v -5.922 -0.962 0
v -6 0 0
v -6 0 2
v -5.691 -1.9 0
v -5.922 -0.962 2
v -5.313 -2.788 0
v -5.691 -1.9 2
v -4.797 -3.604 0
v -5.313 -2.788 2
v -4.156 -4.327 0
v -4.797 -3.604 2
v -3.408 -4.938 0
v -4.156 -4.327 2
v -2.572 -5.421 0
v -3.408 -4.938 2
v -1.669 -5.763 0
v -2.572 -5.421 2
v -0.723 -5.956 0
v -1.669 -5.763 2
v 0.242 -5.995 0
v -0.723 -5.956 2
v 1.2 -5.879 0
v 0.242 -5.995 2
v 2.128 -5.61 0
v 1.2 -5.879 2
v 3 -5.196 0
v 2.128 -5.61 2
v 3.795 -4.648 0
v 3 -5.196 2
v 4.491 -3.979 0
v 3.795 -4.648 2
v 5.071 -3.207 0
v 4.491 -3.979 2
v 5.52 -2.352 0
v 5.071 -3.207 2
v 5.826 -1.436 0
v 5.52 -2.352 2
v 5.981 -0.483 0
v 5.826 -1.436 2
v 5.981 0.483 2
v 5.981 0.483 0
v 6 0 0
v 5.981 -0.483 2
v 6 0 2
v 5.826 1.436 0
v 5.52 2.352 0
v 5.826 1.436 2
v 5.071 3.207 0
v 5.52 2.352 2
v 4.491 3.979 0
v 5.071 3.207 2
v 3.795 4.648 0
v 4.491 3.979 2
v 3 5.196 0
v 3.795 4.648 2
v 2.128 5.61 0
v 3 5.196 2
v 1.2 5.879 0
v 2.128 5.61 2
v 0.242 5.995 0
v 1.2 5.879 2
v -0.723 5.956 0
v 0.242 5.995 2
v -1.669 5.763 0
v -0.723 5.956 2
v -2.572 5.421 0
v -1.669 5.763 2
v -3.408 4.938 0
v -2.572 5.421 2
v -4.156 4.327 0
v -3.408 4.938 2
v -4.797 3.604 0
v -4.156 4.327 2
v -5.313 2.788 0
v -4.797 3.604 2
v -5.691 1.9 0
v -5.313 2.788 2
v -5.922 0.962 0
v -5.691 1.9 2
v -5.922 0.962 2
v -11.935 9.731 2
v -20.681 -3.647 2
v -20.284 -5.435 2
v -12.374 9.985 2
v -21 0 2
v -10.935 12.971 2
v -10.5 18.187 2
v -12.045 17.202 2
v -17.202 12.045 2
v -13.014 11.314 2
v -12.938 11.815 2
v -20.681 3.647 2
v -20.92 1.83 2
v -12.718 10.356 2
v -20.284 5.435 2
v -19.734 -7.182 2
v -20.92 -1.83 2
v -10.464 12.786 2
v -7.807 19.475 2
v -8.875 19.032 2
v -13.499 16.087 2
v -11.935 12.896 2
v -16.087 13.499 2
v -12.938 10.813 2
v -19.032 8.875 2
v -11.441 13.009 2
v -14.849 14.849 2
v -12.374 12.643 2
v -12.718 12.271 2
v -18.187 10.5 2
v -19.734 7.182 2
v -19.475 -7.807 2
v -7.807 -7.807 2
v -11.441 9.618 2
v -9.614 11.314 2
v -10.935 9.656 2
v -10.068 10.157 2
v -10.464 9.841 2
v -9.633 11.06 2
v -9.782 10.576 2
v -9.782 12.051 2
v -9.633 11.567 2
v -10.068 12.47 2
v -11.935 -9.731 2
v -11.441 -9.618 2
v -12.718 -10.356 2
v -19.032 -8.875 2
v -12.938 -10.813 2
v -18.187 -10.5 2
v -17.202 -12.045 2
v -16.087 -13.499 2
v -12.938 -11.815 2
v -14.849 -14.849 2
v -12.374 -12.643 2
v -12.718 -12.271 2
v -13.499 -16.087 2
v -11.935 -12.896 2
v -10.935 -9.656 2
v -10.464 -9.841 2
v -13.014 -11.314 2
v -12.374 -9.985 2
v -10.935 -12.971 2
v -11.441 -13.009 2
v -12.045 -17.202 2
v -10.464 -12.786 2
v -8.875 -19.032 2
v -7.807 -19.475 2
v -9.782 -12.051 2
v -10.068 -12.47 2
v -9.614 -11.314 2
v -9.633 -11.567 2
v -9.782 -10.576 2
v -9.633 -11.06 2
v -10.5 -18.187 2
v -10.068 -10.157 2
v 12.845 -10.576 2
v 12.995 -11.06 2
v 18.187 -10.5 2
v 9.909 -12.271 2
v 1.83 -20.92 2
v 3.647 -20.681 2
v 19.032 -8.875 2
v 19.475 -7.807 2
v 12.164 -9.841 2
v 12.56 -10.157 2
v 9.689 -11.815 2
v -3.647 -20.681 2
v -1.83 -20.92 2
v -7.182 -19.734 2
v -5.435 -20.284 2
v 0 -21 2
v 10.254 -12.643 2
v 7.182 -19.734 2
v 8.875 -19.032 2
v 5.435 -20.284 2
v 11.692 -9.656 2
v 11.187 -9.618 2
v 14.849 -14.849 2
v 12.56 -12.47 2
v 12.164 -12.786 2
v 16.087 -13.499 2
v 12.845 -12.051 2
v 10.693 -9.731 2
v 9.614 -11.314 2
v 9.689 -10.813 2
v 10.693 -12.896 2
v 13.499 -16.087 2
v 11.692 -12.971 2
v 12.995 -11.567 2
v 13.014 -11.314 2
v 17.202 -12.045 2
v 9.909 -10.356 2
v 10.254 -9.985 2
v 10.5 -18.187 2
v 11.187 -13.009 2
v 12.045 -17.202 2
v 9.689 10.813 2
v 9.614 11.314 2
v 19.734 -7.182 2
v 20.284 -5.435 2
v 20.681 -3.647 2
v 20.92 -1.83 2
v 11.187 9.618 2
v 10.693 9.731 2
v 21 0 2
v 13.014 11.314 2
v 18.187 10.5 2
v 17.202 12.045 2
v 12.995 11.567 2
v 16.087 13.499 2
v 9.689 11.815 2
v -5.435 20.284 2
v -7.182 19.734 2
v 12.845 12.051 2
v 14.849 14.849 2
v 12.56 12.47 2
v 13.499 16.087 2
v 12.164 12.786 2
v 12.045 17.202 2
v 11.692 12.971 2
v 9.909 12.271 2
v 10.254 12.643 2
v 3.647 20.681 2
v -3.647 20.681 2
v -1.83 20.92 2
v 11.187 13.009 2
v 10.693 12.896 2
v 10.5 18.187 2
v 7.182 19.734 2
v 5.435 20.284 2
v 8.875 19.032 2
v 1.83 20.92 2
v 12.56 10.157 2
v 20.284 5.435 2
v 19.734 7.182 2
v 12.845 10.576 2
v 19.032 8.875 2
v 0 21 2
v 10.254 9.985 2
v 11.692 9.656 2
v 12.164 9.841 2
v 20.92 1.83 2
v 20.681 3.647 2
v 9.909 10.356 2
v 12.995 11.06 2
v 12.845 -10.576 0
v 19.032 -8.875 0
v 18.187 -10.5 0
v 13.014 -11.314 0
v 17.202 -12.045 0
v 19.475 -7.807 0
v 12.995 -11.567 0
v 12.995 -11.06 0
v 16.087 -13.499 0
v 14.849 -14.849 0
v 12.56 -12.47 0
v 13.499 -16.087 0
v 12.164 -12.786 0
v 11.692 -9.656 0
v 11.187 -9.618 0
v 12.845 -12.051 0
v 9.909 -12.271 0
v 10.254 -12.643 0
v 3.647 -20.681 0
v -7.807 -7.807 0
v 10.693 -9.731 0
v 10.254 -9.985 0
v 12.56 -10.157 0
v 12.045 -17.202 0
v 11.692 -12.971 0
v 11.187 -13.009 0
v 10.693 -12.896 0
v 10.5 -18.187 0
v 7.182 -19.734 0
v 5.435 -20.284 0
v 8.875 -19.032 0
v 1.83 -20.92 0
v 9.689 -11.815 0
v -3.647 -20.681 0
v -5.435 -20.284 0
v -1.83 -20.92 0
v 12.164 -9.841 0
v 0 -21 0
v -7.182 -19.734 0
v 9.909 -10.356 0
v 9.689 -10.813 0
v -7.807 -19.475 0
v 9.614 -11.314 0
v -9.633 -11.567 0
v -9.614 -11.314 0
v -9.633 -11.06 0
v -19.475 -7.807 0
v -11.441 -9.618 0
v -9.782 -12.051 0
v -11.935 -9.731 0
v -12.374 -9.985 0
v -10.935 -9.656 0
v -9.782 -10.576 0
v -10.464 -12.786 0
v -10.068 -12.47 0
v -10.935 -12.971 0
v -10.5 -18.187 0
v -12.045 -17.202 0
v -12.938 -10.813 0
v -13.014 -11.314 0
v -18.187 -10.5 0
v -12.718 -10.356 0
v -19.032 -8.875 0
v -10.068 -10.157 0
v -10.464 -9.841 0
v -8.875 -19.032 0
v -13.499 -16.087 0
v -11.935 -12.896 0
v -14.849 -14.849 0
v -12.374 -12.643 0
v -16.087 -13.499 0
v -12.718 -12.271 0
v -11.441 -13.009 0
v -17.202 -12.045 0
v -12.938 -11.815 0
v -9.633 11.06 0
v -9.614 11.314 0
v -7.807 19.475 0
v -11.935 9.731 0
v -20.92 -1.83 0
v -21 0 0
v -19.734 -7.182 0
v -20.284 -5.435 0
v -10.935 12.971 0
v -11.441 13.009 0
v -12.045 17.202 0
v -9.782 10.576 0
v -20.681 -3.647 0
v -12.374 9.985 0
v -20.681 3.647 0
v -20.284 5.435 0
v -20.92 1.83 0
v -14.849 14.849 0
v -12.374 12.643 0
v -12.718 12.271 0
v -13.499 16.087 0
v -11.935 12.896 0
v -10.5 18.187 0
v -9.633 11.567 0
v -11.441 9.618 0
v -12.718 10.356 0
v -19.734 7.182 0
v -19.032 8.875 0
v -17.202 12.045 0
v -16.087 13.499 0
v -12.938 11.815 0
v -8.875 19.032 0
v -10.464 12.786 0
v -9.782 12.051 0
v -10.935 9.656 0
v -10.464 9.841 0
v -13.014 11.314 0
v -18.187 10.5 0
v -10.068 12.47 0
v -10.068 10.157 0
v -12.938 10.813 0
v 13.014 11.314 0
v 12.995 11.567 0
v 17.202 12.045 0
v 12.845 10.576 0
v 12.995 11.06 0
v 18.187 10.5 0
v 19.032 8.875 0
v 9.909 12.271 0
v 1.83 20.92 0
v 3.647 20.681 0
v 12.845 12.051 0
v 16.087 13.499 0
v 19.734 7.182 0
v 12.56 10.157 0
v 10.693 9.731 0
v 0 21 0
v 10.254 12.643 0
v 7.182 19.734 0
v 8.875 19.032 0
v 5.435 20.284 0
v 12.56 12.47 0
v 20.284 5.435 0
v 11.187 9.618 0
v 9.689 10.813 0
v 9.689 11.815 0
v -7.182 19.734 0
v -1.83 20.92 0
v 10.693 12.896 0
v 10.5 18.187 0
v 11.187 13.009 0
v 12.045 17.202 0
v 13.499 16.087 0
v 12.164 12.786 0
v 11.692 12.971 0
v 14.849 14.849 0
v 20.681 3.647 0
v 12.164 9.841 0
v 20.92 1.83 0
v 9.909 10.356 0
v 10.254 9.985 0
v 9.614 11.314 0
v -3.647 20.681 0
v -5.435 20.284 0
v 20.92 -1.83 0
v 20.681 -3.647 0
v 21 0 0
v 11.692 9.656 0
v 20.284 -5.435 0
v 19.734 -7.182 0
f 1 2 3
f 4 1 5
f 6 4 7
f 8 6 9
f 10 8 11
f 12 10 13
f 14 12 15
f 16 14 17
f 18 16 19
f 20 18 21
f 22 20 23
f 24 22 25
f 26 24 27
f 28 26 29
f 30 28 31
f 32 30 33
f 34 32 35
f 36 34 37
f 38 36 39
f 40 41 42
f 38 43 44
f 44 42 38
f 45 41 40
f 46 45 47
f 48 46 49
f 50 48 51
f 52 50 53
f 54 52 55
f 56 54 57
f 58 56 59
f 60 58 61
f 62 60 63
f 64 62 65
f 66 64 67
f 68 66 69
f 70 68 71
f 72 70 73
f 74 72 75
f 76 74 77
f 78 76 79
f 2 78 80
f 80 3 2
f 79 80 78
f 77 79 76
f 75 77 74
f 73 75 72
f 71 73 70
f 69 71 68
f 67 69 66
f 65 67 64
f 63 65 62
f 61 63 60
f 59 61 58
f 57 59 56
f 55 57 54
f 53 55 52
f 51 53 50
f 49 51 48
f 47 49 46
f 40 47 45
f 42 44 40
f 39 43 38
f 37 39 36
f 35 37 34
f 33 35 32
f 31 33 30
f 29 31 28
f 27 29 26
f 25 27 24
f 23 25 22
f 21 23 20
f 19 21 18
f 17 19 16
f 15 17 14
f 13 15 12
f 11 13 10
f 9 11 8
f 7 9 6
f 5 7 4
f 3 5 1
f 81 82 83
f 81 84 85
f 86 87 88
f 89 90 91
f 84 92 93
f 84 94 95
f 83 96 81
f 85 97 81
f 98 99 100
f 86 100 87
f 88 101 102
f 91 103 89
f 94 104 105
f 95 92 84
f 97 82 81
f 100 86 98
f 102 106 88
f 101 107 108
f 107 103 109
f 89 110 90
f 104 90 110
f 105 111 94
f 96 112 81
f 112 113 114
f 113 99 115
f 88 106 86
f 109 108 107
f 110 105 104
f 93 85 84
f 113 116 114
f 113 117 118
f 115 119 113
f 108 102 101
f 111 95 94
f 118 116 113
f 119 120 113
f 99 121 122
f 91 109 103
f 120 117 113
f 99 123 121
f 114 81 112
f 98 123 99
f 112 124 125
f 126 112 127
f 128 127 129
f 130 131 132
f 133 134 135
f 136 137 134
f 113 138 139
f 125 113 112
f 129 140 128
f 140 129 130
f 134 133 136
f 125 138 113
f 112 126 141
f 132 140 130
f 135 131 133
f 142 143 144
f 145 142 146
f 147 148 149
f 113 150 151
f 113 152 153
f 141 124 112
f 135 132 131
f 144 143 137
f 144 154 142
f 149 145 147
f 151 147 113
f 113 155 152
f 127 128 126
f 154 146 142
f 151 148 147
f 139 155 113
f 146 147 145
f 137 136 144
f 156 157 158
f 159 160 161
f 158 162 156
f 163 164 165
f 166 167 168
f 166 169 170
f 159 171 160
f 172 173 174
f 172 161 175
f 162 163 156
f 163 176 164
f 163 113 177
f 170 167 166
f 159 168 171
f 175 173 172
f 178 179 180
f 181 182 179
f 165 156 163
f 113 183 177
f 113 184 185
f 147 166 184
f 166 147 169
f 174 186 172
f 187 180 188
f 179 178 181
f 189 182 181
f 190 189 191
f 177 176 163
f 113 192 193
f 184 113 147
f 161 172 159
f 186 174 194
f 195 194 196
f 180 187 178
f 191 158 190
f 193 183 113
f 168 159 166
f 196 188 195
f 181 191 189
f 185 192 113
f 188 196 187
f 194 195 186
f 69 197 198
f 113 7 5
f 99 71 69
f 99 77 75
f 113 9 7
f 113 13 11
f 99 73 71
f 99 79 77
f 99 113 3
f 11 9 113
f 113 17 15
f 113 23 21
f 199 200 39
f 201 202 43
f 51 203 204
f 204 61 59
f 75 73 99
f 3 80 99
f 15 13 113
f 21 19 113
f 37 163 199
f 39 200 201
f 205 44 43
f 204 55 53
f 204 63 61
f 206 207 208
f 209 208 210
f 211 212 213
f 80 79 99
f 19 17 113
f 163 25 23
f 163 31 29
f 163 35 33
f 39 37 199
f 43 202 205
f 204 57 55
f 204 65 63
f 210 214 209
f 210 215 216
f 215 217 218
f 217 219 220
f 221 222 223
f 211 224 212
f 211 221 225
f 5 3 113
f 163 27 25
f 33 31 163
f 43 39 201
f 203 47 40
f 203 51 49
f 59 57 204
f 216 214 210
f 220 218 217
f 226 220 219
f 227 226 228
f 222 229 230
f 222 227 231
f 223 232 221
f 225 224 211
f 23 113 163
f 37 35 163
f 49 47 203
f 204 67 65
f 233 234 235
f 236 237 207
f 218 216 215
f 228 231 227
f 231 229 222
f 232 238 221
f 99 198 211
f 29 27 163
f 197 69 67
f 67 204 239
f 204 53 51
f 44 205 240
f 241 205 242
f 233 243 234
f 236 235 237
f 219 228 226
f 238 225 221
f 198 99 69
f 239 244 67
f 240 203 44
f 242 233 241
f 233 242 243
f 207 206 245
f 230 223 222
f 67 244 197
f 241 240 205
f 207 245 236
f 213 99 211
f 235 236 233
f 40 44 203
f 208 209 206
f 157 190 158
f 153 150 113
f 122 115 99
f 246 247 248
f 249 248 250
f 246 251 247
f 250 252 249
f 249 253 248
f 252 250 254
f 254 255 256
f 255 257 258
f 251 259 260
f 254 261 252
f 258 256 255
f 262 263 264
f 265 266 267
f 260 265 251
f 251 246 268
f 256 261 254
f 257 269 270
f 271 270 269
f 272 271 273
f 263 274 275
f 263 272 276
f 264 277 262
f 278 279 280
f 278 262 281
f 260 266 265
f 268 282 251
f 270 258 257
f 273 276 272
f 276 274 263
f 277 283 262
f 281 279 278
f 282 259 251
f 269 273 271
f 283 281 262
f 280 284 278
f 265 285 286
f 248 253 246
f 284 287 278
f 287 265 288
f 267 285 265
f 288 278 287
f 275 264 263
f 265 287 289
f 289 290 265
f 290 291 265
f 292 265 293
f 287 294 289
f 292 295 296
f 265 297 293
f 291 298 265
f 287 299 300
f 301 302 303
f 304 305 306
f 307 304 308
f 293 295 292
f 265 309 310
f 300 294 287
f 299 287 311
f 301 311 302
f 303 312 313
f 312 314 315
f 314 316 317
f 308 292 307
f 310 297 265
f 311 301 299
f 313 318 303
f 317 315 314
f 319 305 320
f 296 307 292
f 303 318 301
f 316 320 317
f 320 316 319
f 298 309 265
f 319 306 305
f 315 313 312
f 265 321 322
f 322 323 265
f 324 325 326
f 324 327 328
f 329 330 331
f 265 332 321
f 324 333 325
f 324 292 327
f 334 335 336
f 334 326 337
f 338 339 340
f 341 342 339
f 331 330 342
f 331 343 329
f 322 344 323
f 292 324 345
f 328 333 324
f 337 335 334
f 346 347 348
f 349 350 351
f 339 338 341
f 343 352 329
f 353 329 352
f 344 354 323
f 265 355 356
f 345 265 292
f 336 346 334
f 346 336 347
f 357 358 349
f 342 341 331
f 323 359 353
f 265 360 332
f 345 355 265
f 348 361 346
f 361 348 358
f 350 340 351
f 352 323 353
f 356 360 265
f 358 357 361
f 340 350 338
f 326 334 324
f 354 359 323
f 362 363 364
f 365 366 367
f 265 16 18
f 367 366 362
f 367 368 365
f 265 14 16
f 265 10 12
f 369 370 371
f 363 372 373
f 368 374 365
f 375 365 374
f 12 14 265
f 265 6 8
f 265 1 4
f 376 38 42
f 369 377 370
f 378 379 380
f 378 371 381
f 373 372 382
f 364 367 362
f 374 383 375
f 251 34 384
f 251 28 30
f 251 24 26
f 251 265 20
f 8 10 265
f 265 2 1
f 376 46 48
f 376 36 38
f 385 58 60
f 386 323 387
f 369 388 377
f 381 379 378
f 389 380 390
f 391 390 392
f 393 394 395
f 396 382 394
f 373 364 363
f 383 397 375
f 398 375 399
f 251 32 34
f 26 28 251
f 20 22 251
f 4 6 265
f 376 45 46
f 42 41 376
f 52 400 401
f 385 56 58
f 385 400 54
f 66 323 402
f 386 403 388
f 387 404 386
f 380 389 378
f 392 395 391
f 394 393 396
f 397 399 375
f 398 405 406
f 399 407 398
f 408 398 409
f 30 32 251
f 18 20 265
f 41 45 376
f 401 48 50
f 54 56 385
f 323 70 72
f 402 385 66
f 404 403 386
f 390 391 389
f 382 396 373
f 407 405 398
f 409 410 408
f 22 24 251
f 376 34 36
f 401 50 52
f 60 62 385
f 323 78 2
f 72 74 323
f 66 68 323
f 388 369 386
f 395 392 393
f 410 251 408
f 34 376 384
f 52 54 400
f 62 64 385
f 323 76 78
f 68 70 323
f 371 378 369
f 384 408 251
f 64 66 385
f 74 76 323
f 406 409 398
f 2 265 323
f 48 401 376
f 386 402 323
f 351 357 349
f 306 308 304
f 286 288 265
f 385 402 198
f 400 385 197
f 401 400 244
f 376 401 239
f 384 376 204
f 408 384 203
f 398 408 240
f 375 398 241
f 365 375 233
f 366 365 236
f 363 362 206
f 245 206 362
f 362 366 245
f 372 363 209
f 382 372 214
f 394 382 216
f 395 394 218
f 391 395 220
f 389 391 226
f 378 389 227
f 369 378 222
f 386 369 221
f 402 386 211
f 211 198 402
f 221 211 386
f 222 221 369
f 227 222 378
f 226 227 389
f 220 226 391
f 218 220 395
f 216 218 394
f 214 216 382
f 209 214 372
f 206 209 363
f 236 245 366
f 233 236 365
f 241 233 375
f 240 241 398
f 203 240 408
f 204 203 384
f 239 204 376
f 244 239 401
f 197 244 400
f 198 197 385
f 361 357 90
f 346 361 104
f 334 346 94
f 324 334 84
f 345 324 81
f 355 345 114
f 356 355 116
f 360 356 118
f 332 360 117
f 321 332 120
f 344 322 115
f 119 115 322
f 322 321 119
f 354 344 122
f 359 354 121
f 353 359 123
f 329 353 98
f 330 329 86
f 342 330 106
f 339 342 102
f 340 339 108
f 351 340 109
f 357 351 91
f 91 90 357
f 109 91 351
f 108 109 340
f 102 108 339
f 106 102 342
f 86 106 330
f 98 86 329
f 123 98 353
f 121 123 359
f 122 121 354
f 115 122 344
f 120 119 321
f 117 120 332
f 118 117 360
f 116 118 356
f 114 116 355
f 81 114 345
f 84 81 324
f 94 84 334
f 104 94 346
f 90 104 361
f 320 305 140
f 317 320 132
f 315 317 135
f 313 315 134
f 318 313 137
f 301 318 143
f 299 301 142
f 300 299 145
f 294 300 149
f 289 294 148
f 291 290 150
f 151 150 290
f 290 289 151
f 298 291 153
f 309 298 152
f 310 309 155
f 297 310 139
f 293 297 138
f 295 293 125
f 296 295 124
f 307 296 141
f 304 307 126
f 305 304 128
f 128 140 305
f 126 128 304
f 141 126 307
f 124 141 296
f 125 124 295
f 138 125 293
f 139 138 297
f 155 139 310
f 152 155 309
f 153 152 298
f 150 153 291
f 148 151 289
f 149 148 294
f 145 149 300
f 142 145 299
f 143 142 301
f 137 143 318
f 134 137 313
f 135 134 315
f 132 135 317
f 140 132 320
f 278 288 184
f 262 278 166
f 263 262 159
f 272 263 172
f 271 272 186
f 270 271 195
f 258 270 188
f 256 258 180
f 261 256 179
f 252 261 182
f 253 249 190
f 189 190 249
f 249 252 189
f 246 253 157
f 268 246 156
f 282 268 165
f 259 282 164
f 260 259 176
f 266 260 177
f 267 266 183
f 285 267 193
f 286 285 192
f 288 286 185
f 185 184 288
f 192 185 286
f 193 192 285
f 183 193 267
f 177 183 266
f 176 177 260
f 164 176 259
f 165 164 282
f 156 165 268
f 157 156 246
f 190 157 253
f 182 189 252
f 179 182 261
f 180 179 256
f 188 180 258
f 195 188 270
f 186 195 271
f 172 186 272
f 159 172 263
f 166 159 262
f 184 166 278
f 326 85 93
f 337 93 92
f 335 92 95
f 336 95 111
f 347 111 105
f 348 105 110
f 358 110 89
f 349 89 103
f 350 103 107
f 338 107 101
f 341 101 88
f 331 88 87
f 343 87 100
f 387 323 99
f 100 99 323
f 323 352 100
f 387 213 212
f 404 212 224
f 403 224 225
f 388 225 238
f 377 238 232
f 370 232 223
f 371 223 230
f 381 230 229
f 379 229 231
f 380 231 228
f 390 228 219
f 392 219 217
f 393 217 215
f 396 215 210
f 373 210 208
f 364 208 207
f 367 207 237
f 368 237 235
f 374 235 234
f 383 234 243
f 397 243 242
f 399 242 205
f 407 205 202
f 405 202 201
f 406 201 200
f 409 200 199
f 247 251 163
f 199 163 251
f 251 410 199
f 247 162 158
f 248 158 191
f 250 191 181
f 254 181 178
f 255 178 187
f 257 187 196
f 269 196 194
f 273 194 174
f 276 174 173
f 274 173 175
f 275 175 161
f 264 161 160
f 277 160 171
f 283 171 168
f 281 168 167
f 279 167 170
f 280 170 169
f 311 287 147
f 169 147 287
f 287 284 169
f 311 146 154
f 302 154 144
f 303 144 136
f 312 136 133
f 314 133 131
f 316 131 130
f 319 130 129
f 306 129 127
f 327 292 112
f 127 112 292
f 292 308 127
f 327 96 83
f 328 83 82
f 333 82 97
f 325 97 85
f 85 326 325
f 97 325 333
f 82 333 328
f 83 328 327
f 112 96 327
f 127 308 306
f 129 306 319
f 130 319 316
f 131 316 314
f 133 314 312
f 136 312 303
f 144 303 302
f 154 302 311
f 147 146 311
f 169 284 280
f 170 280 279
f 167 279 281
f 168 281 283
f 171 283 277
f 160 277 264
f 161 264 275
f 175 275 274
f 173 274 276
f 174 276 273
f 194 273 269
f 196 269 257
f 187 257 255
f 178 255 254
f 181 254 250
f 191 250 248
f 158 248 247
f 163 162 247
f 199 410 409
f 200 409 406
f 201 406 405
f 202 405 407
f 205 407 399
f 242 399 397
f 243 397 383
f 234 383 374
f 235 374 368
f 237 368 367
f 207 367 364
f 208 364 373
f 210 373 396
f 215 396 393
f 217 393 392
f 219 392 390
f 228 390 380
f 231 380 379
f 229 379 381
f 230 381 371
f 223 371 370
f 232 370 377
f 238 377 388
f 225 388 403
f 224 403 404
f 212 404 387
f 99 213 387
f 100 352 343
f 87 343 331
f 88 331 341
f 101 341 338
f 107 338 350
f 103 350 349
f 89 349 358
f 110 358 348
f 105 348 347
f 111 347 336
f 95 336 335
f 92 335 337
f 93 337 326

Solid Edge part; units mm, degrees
sketch "Sketch1" plane through (0, 0, 0) normal (0, 0, 1) x (1, 0, 0)
  circle A0 centre (0, 0) radius 21
  circle A1 centre (0, 0) radius 6
  circle A2 centre (11.3137, 11.3137) radius 1.7
  circle A3 centre (-11.3137, 11.3137) radius 1.7
  circle A4 centre (-11.3137, -11.3137) radius 1.7
  circle A5 centre (11.3137, -11.3137) radius 1.7
extrude "Protrusion1" add sketch "Sketch1" along normal blind 2
